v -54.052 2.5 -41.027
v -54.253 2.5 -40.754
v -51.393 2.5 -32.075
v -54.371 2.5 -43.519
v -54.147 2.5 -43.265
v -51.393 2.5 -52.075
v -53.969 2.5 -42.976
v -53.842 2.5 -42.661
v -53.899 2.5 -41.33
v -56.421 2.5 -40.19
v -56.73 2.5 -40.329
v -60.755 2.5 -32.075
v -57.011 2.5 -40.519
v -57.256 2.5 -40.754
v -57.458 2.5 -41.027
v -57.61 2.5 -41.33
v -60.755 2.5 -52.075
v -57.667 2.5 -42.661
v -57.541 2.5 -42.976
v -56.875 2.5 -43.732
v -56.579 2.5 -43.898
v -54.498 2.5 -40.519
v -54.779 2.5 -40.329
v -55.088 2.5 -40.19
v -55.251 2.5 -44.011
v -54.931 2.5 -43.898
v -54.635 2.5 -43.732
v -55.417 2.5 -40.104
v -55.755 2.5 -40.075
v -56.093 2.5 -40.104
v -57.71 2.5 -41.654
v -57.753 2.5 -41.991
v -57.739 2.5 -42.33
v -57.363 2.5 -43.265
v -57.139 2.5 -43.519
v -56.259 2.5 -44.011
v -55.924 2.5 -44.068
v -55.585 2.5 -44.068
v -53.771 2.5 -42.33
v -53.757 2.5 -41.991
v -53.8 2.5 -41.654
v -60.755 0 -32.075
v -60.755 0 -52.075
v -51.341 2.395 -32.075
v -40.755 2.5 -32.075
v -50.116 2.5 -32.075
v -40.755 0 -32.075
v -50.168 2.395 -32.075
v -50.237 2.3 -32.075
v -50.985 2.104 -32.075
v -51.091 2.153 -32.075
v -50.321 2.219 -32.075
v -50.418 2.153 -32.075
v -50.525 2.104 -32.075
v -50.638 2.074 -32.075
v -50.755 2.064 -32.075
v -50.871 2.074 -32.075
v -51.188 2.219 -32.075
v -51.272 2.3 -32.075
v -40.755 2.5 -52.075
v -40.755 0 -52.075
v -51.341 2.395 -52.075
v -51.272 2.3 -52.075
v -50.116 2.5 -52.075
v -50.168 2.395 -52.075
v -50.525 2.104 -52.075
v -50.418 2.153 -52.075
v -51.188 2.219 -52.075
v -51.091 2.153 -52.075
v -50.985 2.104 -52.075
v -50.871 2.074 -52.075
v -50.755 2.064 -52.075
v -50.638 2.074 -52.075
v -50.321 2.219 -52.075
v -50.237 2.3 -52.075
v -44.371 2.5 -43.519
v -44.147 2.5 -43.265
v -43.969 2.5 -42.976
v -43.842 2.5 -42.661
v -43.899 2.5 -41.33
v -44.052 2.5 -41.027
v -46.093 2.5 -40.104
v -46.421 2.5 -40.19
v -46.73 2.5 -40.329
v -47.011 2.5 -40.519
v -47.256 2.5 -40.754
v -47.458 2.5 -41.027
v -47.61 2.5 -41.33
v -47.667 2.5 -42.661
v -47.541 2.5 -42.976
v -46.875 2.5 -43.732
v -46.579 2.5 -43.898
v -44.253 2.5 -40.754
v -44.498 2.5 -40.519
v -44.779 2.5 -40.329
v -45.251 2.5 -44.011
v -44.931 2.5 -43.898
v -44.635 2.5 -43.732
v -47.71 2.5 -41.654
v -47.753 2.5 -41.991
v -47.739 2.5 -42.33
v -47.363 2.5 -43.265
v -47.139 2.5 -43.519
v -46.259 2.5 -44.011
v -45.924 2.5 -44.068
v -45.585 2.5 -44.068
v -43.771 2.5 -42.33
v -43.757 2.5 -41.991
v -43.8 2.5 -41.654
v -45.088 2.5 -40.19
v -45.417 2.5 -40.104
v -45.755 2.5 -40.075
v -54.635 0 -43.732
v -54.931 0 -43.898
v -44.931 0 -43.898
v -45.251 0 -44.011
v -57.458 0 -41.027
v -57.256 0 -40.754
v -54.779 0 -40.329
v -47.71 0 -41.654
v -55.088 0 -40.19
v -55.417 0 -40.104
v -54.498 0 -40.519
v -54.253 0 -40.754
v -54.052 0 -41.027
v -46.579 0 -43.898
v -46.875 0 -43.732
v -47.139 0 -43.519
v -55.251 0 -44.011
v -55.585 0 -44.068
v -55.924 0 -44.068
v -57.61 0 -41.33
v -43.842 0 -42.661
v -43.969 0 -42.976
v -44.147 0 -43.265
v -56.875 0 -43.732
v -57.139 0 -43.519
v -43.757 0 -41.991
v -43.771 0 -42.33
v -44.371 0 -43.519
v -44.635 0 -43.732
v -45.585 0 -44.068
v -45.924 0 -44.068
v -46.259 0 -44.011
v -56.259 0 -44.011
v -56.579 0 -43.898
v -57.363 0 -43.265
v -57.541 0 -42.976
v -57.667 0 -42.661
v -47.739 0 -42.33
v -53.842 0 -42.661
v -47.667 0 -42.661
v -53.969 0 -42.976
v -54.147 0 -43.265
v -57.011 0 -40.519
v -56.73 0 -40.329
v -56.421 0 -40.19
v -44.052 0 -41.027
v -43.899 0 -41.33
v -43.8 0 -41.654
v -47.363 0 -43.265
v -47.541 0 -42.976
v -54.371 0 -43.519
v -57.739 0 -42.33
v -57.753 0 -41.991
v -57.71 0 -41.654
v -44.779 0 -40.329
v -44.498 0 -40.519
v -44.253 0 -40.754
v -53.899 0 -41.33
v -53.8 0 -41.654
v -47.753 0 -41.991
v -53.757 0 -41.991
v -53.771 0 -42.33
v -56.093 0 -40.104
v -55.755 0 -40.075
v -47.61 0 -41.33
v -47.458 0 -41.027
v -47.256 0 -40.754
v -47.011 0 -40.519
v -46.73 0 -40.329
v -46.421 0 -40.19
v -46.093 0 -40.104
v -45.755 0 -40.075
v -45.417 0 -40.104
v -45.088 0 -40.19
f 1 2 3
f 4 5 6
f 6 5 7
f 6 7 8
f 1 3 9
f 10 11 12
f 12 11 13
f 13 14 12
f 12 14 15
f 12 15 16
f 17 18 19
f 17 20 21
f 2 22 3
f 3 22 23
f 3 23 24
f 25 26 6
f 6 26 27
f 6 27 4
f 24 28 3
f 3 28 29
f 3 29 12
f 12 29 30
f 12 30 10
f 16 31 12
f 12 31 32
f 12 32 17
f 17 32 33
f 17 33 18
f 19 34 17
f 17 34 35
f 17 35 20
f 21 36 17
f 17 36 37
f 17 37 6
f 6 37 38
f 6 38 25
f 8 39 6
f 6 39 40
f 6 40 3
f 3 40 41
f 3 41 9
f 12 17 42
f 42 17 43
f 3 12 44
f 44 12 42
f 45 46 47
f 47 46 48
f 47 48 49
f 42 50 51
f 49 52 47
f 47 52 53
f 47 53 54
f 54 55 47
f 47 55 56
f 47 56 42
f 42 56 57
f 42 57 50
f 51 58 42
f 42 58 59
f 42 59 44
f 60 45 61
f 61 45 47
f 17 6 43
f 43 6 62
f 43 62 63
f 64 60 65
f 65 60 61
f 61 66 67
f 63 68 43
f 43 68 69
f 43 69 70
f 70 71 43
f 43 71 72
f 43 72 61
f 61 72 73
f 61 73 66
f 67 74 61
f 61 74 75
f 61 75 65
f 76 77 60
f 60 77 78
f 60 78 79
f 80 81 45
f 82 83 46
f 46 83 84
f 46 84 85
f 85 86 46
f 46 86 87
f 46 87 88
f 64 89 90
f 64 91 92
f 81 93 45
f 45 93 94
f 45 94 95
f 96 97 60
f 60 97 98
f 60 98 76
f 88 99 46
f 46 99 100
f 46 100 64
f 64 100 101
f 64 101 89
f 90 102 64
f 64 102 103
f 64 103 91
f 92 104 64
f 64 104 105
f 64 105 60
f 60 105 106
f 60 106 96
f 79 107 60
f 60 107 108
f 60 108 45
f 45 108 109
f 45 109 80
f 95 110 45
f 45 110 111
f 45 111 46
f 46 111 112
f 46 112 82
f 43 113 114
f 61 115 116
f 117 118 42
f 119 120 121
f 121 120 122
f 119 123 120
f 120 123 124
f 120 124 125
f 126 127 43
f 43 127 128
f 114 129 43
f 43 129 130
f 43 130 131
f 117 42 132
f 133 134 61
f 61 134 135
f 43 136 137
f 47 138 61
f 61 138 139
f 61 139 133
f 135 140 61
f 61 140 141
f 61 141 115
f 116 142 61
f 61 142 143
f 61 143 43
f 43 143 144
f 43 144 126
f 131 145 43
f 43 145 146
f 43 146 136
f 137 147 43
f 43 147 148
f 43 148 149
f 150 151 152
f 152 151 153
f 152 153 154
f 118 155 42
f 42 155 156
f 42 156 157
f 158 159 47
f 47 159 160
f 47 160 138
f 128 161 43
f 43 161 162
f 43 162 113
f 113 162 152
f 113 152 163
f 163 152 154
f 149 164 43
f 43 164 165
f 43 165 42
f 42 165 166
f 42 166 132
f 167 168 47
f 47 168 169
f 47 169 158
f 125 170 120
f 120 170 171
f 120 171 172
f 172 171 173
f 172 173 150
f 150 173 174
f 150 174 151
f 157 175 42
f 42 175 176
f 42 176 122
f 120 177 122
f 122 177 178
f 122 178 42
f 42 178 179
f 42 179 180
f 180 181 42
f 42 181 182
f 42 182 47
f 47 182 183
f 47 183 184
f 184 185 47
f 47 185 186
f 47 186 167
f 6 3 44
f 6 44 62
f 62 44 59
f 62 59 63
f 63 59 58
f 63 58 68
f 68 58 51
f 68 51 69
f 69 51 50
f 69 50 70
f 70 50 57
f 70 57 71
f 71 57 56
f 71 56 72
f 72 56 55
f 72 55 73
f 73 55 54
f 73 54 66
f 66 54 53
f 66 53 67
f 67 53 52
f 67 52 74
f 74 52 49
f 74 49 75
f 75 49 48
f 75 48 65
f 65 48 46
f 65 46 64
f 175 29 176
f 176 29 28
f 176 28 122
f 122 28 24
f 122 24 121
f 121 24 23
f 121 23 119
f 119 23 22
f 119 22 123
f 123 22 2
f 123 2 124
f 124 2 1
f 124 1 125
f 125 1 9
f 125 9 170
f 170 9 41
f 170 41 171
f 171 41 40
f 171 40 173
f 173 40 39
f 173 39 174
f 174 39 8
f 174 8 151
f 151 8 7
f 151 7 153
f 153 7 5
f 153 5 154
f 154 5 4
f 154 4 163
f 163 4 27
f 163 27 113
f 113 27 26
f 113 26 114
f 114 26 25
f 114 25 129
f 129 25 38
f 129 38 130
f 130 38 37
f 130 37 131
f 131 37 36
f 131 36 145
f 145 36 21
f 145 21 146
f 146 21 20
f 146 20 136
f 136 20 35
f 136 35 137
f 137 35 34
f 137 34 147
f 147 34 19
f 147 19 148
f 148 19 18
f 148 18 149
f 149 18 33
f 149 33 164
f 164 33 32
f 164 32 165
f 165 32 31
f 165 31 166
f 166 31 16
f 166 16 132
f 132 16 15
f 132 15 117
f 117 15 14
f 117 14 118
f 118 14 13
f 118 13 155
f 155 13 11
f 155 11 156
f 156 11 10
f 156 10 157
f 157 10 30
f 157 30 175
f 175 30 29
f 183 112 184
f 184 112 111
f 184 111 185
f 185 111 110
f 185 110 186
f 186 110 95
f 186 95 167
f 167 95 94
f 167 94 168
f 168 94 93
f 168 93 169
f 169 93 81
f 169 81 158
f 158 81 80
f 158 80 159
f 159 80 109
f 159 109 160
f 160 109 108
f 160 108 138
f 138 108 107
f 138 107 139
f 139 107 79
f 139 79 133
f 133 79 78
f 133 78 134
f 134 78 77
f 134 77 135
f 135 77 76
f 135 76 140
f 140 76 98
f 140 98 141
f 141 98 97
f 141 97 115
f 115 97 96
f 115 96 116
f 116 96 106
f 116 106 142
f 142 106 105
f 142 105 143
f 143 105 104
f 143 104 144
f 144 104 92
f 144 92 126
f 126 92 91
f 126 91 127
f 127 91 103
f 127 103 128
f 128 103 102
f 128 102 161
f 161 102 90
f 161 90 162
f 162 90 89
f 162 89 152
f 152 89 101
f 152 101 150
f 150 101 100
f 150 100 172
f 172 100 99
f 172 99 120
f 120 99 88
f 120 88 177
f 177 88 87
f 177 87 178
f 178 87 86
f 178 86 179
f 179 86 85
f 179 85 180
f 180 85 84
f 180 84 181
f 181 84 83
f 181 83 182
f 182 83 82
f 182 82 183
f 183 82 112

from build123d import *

# Parameters (mm, degrees)
SKETCH1_W           = 20
SKETCH1_H           = 20
BOSS_EXTRUDE1_DEPTH = 2.5
SKETCH2_R           = 0.6858
CUT_EXTRUDE1_DEPTH  = 21
SKETCH3_R           = 2
CUT_EXTRUDE2_DEPTH  = 3.5


with BuildPart() as part:
    # Sketch1 → Boss-Extrude1 (new body)
    with BuildSketch(Plane(origin=(0, 0, 0), x_dir=(1, 0, 0), z_dir=(0, 1, 0))):
        with Locations((-50.754716981, 42.075471698)):
            Rectangle(SKETCH1_W, SKETCH1_H)
    extrude(amount=BOSS_EXTRUDE1_DEPTH)

    # Sketch2 → Cut-Extrude1 (cut, through all)
    with BuildSketch(Plane.XY.offset(-32.075471698)):
        with Locations((-50.754716981, 2.75)):
            Circle(SKETCH2_R)
    extrude(amount=-CUT_EXTRUDE1_DEPTH, mode=Mode.SUBTRACT)

    # Sketch3 → Cut-Extrude2 (cut, through all)
    with BuildSketch(Plane(origin=(0, 2.5, 0), x_dir=(1, 0, 0), z_dir=(0, 1, 0))):
        with Locations((-55.754716981, 42.075471698)):
            Circle(SKETCH3_R)
        with Locations((-45.754716981, 42.075471698)):
            Circle(SKETCH3_R)
    extrude(amount=-CUT_EXTRUDE2_DEPTH, mode=Mode.SUBTRACT)


solid = part.part
